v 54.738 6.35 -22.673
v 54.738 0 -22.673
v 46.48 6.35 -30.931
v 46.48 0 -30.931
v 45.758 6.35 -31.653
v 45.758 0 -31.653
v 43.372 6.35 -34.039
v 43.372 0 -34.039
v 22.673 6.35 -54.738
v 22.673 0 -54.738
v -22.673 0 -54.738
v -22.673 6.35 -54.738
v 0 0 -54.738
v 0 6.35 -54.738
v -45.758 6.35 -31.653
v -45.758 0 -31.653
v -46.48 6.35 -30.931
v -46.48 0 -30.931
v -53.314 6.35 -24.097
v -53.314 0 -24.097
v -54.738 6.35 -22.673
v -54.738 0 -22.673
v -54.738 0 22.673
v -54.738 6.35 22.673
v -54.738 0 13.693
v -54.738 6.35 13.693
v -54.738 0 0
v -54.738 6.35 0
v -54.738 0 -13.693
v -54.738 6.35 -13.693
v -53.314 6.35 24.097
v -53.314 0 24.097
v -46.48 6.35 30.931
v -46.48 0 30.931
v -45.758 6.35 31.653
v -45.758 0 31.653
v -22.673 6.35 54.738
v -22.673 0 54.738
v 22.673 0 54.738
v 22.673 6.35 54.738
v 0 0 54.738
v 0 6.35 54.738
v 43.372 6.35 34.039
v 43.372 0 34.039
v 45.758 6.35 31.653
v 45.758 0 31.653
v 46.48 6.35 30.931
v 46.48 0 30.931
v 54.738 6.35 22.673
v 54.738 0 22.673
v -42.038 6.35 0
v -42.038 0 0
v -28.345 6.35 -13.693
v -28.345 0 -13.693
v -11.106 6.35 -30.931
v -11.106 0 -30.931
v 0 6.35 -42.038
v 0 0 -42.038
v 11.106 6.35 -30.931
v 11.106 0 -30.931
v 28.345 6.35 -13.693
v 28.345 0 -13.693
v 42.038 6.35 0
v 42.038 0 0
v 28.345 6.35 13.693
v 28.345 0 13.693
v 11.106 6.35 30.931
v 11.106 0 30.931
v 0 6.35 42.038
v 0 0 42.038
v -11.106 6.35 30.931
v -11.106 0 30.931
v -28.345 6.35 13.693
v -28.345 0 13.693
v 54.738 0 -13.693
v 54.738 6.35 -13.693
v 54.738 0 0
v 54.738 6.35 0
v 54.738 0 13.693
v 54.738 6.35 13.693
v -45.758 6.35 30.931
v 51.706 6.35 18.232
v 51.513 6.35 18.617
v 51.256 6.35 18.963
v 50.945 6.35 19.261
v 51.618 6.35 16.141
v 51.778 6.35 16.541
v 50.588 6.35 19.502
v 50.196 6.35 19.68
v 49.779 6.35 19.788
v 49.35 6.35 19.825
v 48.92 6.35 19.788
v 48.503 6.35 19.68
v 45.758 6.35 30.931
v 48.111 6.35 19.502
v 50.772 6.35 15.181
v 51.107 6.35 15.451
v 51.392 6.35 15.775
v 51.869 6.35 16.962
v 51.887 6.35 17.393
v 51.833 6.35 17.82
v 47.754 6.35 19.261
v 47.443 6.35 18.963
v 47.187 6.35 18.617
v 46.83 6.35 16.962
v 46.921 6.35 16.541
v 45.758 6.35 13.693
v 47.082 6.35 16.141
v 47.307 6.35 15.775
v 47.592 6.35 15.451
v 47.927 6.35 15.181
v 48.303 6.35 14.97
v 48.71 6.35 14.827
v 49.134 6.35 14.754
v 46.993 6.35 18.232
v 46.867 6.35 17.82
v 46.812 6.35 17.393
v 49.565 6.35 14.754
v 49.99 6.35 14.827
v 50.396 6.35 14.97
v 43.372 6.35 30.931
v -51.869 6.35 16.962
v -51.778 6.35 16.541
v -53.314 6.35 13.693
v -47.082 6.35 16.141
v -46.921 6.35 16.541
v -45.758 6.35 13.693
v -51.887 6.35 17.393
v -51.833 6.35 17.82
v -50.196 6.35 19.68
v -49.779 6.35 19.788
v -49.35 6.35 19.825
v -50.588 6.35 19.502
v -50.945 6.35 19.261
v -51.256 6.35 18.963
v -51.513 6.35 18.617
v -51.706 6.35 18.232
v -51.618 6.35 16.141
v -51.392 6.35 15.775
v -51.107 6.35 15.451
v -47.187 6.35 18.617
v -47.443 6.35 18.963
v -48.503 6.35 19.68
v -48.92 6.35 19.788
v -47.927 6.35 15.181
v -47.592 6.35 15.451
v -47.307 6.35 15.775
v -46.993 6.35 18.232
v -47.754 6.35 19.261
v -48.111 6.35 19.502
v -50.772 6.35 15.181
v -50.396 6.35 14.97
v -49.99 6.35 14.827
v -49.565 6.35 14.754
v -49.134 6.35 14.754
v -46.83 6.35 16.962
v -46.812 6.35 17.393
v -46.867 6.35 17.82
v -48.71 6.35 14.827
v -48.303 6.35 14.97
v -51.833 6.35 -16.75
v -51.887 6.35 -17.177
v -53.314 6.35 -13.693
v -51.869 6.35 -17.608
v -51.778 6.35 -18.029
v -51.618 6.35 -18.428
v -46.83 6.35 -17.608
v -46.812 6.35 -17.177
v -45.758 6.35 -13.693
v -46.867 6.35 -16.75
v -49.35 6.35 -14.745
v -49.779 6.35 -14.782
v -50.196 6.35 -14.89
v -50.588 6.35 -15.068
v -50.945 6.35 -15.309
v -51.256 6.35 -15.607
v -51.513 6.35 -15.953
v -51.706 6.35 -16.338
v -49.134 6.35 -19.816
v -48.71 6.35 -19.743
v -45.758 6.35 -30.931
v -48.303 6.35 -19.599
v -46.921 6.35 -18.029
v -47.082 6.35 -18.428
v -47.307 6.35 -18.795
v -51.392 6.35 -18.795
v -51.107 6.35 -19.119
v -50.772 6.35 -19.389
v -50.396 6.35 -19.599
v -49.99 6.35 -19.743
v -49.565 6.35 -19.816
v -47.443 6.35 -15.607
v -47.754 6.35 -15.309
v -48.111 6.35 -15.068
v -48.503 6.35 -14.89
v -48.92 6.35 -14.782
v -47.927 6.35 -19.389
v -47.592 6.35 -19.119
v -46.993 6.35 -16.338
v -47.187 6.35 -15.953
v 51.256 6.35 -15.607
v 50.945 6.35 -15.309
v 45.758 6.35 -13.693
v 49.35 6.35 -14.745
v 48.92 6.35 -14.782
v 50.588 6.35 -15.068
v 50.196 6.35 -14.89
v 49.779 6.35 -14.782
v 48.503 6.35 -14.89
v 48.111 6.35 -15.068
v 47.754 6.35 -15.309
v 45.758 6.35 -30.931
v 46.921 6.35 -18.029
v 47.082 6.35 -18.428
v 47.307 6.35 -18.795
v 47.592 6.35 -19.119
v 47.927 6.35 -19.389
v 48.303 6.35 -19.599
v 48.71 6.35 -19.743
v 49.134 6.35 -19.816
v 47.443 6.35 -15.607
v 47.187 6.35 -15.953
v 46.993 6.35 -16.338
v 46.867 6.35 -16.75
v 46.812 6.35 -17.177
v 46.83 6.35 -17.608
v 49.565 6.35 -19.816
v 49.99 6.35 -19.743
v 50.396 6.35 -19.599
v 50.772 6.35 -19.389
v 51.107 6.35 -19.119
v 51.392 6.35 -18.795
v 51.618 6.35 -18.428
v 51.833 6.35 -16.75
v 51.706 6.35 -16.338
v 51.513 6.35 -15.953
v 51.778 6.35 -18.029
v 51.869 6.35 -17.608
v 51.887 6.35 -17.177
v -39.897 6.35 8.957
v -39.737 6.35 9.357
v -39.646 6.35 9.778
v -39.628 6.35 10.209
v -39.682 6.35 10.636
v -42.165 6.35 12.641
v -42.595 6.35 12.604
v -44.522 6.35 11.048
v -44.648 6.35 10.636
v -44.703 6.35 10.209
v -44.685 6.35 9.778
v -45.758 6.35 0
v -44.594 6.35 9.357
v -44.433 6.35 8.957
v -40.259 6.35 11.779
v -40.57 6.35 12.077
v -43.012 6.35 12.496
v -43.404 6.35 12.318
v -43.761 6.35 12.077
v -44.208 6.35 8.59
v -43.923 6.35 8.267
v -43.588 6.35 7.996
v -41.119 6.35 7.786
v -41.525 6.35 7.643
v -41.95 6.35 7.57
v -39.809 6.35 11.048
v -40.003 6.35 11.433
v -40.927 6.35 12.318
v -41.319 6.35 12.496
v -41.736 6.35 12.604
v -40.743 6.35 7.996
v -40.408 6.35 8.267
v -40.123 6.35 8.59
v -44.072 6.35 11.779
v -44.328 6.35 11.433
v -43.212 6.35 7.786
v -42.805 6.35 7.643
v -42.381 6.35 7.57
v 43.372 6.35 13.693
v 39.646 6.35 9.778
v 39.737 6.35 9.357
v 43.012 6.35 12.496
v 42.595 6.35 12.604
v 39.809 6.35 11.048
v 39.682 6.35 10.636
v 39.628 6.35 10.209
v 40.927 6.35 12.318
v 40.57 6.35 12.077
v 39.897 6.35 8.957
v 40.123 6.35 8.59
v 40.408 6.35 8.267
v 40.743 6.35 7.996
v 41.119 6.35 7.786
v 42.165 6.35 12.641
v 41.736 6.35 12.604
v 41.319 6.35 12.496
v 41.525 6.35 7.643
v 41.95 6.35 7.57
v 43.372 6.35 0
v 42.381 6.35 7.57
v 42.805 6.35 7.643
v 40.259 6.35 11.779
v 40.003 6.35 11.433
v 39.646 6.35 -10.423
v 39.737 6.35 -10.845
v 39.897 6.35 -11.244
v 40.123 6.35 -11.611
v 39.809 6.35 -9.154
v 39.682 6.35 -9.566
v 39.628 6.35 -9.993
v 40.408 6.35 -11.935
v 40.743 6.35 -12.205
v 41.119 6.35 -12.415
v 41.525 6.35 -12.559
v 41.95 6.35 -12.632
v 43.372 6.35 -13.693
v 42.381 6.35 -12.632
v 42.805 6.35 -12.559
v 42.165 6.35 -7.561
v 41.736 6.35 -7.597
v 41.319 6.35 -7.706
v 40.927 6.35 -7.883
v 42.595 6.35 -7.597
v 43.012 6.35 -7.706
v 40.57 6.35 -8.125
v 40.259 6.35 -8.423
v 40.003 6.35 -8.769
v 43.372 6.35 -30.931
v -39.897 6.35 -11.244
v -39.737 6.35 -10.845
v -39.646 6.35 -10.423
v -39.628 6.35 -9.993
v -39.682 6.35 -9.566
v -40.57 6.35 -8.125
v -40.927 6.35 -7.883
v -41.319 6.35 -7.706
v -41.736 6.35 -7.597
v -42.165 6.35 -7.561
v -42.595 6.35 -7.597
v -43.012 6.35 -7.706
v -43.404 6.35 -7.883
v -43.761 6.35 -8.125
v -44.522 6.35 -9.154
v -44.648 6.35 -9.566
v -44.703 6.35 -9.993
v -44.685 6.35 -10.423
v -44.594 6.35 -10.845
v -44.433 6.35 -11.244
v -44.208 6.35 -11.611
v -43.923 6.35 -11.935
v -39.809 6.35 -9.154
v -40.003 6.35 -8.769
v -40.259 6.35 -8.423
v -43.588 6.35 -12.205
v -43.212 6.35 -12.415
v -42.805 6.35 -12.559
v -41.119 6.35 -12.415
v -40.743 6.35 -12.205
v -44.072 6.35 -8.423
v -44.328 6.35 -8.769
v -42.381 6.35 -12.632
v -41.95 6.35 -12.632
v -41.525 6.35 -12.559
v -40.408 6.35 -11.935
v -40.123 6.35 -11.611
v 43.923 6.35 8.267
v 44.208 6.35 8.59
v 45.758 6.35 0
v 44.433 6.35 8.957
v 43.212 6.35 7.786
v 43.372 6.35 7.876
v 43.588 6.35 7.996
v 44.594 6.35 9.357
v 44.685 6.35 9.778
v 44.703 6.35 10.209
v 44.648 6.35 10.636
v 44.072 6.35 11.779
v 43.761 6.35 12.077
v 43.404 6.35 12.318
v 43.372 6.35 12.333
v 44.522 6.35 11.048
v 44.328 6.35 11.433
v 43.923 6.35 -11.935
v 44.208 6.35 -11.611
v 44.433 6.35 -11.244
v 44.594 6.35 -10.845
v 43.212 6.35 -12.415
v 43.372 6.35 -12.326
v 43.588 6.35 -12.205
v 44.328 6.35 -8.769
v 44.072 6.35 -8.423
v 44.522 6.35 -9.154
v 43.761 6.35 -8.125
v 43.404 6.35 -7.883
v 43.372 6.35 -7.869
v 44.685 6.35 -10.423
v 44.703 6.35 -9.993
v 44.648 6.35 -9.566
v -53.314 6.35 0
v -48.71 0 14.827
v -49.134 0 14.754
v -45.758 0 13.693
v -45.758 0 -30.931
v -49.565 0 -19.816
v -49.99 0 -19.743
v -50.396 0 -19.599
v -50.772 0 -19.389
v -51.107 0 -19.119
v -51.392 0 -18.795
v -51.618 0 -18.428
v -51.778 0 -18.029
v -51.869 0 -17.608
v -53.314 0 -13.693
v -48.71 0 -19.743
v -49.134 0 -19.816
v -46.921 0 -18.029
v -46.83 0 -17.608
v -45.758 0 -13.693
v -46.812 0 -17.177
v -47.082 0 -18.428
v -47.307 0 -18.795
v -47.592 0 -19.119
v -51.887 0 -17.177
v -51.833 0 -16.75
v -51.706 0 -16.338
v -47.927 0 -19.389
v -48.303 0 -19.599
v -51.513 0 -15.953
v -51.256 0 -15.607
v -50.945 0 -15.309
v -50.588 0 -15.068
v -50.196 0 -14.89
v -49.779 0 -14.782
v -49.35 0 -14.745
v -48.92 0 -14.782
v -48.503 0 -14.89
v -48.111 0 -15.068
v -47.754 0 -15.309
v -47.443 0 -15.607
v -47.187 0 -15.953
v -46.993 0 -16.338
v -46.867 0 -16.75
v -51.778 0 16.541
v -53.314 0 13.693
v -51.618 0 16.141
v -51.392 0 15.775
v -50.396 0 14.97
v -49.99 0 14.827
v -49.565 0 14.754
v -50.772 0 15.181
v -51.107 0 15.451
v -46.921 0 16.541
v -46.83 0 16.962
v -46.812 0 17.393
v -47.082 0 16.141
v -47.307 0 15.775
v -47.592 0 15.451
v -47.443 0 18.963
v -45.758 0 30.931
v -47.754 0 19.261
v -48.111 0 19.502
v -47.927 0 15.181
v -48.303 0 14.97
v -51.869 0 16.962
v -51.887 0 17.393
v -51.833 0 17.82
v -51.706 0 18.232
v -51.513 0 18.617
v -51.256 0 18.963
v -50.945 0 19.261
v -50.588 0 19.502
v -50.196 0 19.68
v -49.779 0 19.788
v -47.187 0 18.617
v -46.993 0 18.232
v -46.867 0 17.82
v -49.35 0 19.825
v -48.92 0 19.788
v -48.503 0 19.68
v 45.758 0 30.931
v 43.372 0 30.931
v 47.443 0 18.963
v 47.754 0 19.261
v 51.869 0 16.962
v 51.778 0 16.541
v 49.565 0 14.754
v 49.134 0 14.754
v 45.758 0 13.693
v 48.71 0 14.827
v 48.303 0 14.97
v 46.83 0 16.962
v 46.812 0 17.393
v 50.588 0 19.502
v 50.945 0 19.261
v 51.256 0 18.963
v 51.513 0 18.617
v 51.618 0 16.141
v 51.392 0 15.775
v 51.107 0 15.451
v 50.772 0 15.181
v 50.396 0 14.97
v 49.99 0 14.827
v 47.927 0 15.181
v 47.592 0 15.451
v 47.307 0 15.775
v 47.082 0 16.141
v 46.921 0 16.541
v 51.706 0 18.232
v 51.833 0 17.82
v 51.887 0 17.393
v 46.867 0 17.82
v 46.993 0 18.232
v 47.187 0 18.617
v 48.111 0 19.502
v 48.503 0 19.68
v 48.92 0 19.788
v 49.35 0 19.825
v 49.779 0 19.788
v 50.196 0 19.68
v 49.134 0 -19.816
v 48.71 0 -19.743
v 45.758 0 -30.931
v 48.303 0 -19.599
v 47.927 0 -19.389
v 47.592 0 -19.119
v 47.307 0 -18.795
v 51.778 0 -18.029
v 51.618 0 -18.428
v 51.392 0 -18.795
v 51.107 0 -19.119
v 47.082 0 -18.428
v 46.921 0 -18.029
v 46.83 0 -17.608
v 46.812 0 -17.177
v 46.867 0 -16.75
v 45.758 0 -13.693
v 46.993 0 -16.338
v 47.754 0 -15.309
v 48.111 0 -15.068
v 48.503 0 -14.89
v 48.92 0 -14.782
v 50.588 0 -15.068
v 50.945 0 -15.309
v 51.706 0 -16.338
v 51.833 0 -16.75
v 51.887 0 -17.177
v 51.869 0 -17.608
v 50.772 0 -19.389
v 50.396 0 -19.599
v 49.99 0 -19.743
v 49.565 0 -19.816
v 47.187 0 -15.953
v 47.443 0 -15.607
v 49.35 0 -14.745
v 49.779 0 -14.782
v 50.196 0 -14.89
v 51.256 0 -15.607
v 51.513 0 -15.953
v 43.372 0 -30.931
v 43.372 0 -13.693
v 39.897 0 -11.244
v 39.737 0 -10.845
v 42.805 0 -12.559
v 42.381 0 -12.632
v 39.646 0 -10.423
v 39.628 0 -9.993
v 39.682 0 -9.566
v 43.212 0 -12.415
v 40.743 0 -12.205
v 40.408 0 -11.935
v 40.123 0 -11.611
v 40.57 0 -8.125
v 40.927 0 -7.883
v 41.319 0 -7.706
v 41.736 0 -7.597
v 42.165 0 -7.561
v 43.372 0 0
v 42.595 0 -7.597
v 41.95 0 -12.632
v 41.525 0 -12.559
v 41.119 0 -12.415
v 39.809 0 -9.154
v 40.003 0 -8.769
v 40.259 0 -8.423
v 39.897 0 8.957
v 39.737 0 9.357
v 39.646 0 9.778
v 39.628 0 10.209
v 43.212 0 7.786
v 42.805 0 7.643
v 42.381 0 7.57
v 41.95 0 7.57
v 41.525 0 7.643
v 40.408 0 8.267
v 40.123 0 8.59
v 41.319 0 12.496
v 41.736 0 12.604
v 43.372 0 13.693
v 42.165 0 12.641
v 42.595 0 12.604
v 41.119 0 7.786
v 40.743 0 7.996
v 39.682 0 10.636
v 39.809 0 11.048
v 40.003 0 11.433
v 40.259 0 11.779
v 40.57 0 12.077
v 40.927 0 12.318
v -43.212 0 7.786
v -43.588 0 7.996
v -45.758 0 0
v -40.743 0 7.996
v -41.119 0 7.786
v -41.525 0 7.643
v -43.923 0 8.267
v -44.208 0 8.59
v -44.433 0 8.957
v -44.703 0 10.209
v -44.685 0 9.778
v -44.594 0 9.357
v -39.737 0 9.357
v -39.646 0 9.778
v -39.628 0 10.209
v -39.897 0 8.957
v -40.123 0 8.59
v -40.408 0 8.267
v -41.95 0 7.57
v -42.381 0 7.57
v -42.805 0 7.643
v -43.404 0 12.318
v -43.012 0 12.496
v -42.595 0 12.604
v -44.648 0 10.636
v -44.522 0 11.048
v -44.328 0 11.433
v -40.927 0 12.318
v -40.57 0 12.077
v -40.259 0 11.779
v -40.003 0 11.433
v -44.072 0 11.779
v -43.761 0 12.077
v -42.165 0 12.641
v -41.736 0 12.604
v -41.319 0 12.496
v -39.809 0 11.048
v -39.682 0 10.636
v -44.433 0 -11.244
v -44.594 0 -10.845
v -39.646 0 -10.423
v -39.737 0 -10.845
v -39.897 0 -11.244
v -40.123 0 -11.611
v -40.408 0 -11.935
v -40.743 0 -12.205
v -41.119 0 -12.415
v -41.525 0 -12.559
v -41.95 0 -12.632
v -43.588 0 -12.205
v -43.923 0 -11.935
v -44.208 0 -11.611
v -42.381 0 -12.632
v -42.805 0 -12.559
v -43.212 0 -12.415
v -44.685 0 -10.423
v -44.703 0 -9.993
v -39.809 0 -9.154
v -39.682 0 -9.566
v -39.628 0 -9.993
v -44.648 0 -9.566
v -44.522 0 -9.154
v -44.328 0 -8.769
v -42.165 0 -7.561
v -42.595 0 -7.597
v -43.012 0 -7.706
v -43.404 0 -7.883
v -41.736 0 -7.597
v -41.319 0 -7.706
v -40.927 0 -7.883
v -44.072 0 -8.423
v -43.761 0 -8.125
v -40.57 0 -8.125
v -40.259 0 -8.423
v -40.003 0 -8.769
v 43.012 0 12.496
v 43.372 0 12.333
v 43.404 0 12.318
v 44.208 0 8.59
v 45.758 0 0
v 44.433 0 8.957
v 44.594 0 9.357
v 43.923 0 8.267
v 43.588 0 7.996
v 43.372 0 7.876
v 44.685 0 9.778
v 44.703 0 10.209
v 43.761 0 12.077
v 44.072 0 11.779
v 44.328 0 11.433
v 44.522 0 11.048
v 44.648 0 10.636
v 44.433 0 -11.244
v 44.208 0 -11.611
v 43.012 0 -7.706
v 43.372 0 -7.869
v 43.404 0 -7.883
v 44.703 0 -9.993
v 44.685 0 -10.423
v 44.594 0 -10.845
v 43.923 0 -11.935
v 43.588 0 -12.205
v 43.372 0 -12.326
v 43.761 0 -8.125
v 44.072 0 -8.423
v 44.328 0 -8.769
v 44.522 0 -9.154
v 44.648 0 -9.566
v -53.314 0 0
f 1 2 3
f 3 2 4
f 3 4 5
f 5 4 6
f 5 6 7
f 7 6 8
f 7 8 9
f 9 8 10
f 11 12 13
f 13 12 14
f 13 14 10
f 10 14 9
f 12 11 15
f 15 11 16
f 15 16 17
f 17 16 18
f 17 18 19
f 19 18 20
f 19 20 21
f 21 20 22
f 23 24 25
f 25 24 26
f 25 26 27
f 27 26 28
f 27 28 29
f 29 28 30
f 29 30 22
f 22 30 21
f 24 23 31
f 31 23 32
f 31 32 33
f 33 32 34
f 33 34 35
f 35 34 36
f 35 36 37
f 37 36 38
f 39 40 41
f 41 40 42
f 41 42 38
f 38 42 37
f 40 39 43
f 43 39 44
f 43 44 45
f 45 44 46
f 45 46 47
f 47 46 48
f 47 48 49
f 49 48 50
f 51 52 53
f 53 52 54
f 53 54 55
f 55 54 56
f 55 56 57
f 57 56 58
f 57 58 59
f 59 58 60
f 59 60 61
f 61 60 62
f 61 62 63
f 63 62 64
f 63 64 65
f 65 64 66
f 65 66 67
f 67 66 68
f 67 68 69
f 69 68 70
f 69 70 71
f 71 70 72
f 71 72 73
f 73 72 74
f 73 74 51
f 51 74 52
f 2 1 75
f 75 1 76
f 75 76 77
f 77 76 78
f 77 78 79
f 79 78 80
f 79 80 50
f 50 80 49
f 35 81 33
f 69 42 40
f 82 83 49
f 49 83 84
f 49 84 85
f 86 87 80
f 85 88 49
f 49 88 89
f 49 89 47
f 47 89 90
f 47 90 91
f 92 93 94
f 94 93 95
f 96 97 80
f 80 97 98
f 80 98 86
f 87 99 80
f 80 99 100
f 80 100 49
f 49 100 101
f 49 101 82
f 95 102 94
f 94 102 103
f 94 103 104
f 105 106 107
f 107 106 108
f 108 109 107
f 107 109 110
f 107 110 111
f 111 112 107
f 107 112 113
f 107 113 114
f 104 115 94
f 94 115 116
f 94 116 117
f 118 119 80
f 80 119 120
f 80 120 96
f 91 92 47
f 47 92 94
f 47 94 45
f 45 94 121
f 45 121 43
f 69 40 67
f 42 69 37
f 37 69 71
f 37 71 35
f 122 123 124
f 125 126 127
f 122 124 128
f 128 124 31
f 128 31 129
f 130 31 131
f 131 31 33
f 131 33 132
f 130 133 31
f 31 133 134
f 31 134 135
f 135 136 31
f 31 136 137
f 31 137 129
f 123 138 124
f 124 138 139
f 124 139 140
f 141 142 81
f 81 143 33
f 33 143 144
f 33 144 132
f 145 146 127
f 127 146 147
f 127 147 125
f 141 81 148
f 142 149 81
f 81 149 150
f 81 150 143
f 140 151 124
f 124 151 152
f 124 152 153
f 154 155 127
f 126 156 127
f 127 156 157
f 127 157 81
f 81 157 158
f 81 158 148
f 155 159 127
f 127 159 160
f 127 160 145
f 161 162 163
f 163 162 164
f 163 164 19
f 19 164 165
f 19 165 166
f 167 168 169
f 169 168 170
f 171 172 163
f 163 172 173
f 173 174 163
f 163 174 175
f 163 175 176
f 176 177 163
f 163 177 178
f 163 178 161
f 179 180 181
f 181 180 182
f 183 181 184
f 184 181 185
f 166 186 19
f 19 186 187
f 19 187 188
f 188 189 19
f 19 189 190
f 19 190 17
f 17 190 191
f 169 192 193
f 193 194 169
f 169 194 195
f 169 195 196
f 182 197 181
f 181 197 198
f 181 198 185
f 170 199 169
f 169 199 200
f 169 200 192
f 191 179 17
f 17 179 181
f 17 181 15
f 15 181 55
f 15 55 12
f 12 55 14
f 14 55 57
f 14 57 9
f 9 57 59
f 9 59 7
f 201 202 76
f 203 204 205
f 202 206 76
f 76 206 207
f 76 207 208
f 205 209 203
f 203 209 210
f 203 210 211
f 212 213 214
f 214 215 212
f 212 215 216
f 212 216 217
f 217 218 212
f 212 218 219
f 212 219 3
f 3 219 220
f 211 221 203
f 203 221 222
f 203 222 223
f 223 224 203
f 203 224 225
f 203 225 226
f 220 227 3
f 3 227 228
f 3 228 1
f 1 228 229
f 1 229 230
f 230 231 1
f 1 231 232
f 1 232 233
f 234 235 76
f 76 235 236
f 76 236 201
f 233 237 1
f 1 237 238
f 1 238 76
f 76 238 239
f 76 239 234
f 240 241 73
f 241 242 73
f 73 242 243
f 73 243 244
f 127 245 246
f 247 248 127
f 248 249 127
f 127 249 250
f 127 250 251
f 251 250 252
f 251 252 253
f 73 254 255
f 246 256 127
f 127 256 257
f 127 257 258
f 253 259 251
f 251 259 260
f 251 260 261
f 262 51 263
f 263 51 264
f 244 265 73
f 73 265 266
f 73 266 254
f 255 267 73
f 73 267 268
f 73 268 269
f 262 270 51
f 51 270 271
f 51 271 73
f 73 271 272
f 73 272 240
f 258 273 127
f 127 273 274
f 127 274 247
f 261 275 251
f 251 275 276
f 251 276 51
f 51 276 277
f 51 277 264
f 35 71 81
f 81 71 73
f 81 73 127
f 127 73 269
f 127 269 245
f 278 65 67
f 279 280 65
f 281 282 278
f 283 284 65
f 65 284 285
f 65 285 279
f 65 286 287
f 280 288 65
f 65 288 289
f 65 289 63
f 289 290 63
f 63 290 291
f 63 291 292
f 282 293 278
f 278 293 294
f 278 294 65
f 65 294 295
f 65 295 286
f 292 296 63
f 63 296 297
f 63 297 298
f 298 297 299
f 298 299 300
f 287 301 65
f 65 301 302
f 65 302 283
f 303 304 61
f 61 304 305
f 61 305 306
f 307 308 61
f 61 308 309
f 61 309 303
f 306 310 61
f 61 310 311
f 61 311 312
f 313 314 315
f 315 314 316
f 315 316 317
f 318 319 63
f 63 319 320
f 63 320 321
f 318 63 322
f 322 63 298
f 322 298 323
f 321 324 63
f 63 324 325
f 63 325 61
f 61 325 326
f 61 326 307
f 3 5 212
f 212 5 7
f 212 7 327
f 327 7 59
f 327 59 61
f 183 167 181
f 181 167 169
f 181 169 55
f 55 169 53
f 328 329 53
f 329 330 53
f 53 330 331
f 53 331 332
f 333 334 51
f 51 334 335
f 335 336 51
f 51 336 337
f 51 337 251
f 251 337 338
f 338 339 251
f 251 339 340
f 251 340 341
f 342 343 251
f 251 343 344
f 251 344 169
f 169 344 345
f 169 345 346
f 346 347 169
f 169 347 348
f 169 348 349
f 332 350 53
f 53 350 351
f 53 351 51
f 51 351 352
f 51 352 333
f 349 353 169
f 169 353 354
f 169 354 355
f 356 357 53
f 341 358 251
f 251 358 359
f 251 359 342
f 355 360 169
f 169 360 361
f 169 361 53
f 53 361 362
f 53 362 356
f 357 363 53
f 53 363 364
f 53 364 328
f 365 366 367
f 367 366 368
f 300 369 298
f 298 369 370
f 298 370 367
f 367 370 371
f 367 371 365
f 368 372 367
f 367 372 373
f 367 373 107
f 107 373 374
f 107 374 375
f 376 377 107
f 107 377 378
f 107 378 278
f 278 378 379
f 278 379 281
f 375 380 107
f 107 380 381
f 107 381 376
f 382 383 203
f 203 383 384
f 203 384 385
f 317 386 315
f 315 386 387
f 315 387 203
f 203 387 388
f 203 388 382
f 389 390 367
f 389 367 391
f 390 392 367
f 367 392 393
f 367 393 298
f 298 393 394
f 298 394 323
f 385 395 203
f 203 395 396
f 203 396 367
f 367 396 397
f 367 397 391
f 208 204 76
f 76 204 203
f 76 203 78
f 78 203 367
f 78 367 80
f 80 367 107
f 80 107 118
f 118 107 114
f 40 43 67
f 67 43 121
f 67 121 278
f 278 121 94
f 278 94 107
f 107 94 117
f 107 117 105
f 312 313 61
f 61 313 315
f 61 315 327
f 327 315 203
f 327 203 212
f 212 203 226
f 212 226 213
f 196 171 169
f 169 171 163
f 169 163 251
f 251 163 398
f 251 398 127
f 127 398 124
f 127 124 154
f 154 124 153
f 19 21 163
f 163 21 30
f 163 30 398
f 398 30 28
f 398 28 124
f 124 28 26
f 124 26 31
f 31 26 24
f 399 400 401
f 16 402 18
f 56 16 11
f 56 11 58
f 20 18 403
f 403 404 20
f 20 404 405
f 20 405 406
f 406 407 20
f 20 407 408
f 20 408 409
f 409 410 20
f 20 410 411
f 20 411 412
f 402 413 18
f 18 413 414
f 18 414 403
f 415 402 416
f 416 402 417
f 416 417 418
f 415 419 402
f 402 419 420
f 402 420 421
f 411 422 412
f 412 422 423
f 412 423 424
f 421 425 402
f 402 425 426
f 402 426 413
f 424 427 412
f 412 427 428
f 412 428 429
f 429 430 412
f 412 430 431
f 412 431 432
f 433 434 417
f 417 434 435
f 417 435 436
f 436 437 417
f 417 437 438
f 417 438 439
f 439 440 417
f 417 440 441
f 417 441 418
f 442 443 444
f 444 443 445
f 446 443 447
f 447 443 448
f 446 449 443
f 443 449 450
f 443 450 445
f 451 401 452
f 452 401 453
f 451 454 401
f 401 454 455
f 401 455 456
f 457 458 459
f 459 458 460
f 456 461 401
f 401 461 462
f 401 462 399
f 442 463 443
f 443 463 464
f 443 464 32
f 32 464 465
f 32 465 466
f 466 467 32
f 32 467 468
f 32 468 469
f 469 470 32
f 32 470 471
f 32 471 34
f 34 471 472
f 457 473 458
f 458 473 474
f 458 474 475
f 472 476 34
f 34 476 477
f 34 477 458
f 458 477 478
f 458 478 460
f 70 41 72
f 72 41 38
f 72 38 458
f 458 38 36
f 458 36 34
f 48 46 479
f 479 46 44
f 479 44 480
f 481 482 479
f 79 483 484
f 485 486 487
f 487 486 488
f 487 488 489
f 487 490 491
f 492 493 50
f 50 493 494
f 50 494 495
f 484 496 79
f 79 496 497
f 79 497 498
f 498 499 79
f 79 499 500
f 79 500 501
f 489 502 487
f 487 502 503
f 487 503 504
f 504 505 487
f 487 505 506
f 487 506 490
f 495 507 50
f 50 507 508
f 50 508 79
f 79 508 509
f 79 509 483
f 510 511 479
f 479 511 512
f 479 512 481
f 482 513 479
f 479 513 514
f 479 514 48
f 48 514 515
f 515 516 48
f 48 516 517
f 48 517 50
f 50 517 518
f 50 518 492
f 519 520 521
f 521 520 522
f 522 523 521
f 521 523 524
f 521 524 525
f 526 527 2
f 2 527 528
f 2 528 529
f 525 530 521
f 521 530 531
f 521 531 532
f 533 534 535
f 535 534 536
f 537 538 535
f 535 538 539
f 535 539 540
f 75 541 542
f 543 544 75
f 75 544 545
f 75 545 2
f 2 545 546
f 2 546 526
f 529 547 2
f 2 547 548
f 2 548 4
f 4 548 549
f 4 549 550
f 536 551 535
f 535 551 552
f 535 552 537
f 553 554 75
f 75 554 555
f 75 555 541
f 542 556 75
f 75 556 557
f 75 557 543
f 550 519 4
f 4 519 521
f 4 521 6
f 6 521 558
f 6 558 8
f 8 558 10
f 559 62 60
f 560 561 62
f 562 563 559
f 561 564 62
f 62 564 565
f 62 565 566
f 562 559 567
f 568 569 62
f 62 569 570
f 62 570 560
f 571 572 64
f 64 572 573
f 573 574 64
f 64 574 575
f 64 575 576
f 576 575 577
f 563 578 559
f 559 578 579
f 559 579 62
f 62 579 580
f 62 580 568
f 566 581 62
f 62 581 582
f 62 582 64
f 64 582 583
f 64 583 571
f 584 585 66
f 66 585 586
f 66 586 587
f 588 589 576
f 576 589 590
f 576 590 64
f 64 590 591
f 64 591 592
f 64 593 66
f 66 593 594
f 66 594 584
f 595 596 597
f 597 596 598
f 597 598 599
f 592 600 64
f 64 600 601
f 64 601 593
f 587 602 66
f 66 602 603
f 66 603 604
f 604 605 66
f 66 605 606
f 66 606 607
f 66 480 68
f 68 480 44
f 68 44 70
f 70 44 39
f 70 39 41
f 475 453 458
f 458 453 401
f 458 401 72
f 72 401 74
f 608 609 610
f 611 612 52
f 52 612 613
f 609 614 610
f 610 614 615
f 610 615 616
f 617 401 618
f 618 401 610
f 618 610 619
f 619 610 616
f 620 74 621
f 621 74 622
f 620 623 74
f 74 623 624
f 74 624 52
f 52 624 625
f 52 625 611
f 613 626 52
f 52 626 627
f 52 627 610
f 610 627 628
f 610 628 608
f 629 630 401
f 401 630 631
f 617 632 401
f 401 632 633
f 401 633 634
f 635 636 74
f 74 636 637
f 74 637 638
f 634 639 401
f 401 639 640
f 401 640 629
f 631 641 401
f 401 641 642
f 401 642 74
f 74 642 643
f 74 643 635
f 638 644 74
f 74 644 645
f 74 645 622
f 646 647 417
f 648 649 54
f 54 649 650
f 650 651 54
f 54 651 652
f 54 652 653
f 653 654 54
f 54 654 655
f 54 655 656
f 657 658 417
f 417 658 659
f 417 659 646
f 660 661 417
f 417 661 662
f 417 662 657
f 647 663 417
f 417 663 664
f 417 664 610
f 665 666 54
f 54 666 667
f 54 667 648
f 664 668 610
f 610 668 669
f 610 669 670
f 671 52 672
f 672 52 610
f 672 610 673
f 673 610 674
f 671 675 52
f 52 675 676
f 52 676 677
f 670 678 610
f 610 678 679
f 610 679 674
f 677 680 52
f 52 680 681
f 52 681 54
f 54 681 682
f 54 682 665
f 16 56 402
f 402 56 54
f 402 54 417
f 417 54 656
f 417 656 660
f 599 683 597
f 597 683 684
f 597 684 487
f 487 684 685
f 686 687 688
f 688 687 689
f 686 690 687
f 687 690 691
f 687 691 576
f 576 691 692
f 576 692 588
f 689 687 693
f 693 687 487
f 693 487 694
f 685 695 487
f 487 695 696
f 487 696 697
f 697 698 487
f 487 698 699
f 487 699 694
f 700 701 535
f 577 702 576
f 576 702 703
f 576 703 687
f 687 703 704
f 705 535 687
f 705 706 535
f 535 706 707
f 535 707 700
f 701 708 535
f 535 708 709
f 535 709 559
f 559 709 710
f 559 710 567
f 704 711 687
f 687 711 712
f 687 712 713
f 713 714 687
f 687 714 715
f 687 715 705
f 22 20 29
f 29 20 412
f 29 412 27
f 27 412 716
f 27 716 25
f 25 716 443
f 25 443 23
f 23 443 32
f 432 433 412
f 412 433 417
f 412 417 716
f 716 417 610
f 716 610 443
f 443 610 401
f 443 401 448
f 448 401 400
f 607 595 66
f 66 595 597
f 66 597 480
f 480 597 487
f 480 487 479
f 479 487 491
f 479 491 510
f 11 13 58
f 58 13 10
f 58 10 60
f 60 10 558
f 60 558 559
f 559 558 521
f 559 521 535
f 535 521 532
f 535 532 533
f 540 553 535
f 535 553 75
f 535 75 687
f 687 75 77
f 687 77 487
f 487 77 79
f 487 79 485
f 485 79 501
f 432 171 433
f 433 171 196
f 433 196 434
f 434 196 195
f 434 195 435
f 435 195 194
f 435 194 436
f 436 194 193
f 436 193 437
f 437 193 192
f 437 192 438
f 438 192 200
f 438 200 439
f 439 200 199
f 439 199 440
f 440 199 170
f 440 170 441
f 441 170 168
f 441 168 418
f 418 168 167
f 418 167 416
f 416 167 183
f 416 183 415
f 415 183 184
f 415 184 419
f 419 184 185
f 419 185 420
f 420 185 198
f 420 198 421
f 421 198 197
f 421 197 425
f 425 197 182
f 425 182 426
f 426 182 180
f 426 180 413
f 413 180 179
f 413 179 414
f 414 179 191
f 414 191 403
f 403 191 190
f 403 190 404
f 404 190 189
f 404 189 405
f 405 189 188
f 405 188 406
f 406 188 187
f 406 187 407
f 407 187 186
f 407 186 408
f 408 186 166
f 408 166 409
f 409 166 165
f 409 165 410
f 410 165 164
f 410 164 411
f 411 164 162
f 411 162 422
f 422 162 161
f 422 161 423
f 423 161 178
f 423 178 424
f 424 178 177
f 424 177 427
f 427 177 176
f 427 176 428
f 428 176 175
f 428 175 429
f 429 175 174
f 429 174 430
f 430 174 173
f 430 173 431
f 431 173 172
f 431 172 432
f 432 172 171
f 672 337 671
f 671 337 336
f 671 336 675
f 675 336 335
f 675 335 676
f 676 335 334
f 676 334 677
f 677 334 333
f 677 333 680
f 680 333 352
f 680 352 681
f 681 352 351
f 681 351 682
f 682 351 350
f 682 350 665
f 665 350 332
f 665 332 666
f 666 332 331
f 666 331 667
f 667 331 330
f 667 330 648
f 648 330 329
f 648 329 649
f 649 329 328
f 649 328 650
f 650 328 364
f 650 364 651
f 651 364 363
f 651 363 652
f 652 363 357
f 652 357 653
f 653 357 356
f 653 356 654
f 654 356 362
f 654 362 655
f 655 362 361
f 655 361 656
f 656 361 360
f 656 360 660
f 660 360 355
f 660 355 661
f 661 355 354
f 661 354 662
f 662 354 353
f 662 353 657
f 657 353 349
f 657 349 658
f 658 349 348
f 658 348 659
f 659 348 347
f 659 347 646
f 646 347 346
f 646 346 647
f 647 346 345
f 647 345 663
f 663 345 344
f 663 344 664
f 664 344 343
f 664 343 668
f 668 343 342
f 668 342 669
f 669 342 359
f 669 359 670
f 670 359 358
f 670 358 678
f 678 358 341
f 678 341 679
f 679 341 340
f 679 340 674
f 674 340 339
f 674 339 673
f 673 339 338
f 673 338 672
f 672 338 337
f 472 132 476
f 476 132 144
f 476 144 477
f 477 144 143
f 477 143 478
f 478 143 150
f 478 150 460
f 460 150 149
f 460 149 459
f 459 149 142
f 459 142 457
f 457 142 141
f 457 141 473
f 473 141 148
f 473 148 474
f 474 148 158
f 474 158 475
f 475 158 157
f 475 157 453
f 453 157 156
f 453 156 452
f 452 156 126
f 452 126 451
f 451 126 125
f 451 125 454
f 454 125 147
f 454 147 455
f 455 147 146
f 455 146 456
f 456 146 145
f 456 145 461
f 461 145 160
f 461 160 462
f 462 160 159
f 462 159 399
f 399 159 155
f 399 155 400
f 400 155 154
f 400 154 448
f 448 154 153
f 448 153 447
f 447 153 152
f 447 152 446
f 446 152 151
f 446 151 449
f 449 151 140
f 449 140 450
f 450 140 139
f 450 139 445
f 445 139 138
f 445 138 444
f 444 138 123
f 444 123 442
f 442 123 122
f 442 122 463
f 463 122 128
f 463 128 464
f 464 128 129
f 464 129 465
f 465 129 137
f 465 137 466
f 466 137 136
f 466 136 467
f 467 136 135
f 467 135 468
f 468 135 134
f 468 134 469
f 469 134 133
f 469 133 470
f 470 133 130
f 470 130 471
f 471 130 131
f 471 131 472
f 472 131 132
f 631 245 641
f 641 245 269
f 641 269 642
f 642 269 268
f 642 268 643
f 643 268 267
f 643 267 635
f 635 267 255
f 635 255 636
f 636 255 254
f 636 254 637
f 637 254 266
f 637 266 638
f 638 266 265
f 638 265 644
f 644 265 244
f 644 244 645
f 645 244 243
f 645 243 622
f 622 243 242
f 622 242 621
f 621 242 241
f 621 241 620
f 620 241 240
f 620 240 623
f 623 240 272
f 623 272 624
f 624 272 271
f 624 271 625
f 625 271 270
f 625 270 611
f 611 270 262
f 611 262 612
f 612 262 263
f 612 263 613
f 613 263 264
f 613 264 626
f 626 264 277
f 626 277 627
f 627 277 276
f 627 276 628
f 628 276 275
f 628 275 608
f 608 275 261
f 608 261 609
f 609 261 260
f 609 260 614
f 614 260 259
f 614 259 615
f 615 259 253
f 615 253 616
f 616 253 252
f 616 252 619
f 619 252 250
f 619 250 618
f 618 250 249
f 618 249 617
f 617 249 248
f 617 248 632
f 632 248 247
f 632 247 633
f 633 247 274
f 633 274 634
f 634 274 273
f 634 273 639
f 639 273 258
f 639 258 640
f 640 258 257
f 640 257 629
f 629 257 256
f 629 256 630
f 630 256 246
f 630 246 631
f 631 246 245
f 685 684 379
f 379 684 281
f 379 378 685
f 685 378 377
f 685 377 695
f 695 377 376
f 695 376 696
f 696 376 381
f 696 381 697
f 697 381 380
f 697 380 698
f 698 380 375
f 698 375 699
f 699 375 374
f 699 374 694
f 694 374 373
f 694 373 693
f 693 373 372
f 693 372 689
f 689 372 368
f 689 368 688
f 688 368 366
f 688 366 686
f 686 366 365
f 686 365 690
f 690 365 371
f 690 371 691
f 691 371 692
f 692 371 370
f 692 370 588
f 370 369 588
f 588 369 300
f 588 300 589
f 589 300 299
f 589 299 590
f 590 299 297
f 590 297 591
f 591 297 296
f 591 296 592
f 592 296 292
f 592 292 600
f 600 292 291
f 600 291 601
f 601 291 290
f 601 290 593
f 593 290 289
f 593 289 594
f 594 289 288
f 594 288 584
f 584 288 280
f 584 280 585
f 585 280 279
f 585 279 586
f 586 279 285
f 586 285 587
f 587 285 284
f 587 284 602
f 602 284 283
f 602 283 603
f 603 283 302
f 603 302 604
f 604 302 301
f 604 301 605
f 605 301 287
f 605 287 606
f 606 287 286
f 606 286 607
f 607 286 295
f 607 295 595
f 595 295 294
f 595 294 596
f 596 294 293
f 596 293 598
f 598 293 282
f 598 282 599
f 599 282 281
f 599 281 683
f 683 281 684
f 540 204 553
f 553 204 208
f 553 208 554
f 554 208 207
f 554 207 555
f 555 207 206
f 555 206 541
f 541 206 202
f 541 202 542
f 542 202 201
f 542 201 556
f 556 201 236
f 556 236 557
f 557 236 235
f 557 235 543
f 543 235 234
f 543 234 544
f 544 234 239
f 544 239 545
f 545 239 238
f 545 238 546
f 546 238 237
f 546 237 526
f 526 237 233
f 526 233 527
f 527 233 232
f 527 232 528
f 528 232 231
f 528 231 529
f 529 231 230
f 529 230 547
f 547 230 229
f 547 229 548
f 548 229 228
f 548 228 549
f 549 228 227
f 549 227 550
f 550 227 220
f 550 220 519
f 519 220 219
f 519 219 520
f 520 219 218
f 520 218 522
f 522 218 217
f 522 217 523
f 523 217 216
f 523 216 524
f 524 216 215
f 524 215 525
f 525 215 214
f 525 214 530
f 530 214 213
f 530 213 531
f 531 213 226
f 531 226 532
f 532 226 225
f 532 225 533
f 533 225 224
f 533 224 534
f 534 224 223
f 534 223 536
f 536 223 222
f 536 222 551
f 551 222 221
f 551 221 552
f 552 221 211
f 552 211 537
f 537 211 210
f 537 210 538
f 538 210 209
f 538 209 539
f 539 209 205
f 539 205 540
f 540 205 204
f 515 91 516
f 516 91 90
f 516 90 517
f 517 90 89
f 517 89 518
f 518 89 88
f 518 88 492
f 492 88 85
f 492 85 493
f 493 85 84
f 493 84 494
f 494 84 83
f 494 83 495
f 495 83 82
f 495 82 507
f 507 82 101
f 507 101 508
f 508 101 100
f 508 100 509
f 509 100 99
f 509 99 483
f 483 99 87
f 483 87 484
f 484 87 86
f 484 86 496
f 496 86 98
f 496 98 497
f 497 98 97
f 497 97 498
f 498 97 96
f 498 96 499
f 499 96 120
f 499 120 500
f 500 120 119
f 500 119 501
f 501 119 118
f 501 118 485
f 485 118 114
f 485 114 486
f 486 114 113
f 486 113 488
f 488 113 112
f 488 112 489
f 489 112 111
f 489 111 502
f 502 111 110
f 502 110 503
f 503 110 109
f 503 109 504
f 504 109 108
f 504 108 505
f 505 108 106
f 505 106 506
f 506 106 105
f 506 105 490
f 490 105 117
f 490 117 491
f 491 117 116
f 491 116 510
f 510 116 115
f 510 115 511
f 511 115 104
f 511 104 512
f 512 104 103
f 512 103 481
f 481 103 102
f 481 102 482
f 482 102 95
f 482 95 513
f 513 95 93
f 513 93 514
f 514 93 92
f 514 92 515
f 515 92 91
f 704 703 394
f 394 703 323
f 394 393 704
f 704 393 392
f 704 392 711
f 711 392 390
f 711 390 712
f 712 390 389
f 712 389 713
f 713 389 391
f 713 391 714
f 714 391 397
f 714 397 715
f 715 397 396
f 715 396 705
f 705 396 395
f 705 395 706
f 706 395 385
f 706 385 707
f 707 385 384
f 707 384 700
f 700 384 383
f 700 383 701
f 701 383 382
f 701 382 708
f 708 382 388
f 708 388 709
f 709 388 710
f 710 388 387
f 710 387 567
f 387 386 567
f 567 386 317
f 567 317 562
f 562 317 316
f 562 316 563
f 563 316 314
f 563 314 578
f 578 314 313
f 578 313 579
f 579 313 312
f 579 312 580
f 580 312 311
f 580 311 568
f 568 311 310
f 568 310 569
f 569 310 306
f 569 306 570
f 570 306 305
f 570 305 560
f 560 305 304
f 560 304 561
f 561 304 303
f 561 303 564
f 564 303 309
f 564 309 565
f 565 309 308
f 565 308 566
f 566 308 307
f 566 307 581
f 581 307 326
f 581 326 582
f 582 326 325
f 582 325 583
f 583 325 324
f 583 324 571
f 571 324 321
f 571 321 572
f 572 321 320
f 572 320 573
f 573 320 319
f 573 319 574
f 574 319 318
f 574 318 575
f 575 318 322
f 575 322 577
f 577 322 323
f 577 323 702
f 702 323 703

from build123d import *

# Parameters (mm, degrees)
BOSS_EXTRUDE1_DEPTH = 6.35
SKETCH2_R           = 2.54
CUT_EXTRUDE1_DEPTH  = 6.35


with BuildPart() as part:
    # Sketch1 → Boss-Extrude1 (new body)
    with BuildSketch(Plane(origin=(0, 0, 0), x_dir=(1, 0, 0), z_dir=(0, 1, 0))):
        Polygon((0, -42.037783588), (-42.037783588, 0), (-54.737783588, 0), (-54.737783588, -22.673132337), (-22.673132337, -54.737783588), (0, -54.737783588), align=None)
        Polygon((0, 42.037783588), (0, 54.737783588), (-22.673132337, 54.737783588), (-54.737783588, 22.673132337), (-54.737783588, 0), (-42.037783588, 0), align=None)
        Polygon((22.673132337, 54.737783588), (0, 54.737783588), (0, 42.037783588), (42.037783588, 0), (54.737783588, 0), (54.737783588, 22.673132337), align=None)
        Polygon((54.737783588, 0), (42.037783588, 0), (0, -42.037783588), (0, -54.737783588), (22.673132337, -54.737783588), (54.737783588, -22.673132337), align=None)
    extrude(amount=BOSS_EXTRUDE1_DEPTH)

    # Sketch2 → Cut-Extrude1 (cut)
    with BuildSketch(Plane(origin=(0, 6.35, 0), x_dir=(1, 0, 0), z_dir=(0, 1, 0))):
        with Locations((-49.349629916, 17.284978664)):
            Circle(SKETCH2_R)
        with Locations((-42.165425019, 10.100773767)):
            Circle(SKETCH2_R)
        with Locations((-49.349629916, -17.284978664)):
            Circle(SKETCH2_R)
        with Locations((-42.165425019, -10.100773767)):
            Circle(SKETCH2_R)
        with Locations((49.349629916, 17.284978664)):
            Circle(SKETCH2_R)
        with Locations((42.165425019, 10.100773767)):
            Circle(SKETCH2_R)
        with Locations((42.165425019, -10.100773767)):
            Circle(SKETCH2_R)
        with Locations((49.349629916, -17.284978664)):
            Circle(SKETCH2_R)
    extrude(amount=-CUT_EXTRUDE1_DEPTH, mode=Mode.SUBTRACT)


solid = part.part
